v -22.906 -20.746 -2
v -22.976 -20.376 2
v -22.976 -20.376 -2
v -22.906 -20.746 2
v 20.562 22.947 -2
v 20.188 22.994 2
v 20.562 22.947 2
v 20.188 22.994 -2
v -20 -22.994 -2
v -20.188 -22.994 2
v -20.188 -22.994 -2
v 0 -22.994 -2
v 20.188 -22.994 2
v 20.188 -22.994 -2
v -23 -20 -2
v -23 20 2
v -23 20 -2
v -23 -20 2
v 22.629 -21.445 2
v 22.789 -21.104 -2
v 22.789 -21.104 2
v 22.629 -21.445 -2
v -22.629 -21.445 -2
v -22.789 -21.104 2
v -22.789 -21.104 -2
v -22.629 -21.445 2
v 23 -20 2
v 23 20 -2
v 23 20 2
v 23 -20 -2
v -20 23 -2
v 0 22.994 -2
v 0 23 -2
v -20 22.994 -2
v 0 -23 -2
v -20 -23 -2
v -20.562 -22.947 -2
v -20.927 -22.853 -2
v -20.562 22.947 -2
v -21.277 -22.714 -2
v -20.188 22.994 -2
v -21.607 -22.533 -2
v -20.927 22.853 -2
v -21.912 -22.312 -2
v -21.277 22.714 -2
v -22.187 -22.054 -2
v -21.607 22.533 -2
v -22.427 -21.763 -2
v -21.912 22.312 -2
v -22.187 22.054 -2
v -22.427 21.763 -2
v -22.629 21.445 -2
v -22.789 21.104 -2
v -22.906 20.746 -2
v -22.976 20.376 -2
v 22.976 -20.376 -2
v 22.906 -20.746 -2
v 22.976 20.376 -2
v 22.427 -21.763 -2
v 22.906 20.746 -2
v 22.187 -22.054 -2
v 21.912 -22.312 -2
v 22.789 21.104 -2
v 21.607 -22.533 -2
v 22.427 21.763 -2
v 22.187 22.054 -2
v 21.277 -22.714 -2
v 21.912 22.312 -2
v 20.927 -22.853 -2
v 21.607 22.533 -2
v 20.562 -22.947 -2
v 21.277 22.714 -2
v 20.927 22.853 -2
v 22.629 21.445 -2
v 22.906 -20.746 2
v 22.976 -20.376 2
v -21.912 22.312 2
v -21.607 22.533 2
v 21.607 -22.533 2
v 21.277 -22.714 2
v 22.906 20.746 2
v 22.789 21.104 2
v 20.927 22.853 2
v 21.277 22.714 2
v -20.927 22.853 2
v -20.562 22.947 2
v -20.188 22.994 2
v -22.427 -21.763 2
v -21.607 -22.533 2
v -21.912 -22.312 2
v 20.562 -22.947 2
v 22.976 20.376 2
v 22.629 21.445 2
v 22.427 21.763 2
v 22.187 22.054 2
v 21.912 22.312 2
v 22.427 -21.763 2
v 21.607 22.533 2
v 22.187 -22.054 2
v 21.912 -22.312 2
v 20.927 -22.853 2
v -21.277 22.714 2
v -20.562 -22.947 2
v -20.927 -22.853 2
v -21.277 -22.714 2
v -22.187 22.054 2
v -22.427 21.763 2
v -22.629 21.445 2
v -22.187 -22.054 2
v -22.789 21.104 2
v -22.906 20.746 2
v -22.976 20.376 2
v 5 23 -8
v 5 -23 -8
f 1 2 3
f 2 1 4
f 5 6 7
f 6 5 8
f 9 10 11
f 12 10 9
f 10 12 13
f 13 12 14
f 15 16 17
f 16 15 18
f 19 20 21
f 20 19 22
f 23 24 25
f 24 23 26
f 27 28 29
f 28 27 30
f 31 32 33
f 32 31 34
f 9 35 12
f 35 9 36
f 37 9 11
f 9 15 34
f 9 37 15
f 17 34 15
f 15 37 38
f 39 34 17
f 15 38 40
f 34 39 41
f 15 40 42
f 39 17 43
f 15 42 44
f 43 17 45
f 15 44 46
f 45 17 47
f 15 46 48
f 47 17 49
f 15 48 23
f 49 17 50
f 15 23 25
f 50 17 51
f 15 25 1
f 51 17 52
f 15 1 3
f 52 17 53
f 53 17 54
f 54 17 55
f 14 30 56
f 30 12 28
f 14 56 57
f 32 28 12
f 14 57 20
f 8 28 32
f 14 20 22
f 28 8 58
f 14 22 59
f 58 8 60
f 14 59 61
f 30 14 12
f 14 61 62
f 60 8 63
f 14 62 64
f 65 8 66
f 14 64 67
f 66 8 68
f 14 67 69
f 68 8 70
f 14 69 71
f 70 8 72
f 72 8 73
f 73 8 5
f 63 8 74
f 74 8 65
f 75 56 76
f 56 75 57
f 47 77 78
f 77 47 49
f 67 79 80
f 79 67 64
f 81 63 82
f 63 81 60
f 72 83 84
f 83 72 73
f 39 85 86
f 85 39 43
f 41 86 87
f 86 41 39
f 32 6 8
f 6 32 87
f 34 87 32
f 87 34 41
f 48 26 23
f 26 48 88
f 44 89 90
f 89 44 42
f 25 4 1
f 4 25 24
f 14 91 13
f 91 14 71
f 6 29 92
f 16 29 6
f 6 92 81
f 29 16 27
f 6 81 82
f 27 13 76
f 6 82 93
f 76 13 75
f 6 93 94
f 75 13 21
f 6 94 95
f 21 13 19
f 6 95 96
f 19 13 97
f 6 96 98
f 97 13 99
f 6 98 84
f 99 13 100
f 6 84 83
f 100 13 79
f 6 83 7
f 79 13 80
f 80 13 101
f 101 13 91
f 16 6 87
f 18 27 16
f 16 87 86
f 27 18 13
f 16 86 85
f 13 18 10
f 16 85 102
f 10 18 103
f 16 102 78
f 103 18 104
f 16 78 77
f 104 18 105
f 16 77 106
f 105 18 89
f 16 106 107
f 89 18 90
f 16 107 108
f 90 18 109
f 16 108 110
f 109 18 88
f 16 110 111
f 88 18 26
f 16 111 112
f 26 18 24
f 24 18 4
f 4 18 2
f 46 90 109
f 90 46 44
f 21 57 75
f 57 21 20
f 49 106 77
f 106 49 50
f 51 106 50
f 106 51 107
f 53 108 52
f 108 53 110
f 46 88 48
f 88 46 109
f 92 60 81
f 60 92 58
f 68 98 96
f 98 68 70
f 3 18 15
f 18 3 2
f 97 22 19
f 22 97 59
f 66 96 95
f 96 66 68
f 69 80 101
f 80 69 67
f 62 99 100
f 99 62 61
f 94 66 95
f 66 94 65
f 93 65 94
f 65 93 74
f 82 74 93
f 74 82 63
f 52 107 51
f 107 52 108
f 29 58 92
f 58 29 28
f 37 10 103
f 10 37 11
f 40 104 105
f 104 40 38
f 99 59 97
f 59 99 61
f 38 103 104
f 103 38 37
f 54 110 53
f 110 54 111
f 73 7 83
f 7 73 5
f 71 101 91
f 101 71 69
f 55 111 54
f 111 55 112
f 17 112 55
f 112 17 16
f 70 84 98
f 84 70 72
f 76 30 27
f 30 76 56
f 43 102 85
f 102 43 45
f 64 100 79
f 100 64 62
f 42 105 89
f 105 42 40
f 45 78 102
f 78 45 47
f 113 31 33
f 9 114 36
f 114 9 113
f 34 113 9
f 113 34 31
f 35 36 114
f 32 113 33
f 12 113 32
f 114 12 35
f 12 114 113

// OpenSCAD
$fn = 50;
hook_width = 40;
hook_height = 40;
base_height = 2; 

//intersection() {
union() {
minkowski() {
    cylinder(r=3, h=base_height, center=true);    
    cube([hook_width, hook_height, base_height], center=true);
}


translate([-20,0, -2]) {
rotate([90, 90, 0]) {
linear_extrude(40+3*2, center=true) {
  polygon([[0, 0], [6, 25], [0, 20]]);
}
}
}

}

//translate([-100/2-40,0, -10/2-3]) {
//  cylinder(r2=80, r1=80, h=10, center=true);
//}

//}
